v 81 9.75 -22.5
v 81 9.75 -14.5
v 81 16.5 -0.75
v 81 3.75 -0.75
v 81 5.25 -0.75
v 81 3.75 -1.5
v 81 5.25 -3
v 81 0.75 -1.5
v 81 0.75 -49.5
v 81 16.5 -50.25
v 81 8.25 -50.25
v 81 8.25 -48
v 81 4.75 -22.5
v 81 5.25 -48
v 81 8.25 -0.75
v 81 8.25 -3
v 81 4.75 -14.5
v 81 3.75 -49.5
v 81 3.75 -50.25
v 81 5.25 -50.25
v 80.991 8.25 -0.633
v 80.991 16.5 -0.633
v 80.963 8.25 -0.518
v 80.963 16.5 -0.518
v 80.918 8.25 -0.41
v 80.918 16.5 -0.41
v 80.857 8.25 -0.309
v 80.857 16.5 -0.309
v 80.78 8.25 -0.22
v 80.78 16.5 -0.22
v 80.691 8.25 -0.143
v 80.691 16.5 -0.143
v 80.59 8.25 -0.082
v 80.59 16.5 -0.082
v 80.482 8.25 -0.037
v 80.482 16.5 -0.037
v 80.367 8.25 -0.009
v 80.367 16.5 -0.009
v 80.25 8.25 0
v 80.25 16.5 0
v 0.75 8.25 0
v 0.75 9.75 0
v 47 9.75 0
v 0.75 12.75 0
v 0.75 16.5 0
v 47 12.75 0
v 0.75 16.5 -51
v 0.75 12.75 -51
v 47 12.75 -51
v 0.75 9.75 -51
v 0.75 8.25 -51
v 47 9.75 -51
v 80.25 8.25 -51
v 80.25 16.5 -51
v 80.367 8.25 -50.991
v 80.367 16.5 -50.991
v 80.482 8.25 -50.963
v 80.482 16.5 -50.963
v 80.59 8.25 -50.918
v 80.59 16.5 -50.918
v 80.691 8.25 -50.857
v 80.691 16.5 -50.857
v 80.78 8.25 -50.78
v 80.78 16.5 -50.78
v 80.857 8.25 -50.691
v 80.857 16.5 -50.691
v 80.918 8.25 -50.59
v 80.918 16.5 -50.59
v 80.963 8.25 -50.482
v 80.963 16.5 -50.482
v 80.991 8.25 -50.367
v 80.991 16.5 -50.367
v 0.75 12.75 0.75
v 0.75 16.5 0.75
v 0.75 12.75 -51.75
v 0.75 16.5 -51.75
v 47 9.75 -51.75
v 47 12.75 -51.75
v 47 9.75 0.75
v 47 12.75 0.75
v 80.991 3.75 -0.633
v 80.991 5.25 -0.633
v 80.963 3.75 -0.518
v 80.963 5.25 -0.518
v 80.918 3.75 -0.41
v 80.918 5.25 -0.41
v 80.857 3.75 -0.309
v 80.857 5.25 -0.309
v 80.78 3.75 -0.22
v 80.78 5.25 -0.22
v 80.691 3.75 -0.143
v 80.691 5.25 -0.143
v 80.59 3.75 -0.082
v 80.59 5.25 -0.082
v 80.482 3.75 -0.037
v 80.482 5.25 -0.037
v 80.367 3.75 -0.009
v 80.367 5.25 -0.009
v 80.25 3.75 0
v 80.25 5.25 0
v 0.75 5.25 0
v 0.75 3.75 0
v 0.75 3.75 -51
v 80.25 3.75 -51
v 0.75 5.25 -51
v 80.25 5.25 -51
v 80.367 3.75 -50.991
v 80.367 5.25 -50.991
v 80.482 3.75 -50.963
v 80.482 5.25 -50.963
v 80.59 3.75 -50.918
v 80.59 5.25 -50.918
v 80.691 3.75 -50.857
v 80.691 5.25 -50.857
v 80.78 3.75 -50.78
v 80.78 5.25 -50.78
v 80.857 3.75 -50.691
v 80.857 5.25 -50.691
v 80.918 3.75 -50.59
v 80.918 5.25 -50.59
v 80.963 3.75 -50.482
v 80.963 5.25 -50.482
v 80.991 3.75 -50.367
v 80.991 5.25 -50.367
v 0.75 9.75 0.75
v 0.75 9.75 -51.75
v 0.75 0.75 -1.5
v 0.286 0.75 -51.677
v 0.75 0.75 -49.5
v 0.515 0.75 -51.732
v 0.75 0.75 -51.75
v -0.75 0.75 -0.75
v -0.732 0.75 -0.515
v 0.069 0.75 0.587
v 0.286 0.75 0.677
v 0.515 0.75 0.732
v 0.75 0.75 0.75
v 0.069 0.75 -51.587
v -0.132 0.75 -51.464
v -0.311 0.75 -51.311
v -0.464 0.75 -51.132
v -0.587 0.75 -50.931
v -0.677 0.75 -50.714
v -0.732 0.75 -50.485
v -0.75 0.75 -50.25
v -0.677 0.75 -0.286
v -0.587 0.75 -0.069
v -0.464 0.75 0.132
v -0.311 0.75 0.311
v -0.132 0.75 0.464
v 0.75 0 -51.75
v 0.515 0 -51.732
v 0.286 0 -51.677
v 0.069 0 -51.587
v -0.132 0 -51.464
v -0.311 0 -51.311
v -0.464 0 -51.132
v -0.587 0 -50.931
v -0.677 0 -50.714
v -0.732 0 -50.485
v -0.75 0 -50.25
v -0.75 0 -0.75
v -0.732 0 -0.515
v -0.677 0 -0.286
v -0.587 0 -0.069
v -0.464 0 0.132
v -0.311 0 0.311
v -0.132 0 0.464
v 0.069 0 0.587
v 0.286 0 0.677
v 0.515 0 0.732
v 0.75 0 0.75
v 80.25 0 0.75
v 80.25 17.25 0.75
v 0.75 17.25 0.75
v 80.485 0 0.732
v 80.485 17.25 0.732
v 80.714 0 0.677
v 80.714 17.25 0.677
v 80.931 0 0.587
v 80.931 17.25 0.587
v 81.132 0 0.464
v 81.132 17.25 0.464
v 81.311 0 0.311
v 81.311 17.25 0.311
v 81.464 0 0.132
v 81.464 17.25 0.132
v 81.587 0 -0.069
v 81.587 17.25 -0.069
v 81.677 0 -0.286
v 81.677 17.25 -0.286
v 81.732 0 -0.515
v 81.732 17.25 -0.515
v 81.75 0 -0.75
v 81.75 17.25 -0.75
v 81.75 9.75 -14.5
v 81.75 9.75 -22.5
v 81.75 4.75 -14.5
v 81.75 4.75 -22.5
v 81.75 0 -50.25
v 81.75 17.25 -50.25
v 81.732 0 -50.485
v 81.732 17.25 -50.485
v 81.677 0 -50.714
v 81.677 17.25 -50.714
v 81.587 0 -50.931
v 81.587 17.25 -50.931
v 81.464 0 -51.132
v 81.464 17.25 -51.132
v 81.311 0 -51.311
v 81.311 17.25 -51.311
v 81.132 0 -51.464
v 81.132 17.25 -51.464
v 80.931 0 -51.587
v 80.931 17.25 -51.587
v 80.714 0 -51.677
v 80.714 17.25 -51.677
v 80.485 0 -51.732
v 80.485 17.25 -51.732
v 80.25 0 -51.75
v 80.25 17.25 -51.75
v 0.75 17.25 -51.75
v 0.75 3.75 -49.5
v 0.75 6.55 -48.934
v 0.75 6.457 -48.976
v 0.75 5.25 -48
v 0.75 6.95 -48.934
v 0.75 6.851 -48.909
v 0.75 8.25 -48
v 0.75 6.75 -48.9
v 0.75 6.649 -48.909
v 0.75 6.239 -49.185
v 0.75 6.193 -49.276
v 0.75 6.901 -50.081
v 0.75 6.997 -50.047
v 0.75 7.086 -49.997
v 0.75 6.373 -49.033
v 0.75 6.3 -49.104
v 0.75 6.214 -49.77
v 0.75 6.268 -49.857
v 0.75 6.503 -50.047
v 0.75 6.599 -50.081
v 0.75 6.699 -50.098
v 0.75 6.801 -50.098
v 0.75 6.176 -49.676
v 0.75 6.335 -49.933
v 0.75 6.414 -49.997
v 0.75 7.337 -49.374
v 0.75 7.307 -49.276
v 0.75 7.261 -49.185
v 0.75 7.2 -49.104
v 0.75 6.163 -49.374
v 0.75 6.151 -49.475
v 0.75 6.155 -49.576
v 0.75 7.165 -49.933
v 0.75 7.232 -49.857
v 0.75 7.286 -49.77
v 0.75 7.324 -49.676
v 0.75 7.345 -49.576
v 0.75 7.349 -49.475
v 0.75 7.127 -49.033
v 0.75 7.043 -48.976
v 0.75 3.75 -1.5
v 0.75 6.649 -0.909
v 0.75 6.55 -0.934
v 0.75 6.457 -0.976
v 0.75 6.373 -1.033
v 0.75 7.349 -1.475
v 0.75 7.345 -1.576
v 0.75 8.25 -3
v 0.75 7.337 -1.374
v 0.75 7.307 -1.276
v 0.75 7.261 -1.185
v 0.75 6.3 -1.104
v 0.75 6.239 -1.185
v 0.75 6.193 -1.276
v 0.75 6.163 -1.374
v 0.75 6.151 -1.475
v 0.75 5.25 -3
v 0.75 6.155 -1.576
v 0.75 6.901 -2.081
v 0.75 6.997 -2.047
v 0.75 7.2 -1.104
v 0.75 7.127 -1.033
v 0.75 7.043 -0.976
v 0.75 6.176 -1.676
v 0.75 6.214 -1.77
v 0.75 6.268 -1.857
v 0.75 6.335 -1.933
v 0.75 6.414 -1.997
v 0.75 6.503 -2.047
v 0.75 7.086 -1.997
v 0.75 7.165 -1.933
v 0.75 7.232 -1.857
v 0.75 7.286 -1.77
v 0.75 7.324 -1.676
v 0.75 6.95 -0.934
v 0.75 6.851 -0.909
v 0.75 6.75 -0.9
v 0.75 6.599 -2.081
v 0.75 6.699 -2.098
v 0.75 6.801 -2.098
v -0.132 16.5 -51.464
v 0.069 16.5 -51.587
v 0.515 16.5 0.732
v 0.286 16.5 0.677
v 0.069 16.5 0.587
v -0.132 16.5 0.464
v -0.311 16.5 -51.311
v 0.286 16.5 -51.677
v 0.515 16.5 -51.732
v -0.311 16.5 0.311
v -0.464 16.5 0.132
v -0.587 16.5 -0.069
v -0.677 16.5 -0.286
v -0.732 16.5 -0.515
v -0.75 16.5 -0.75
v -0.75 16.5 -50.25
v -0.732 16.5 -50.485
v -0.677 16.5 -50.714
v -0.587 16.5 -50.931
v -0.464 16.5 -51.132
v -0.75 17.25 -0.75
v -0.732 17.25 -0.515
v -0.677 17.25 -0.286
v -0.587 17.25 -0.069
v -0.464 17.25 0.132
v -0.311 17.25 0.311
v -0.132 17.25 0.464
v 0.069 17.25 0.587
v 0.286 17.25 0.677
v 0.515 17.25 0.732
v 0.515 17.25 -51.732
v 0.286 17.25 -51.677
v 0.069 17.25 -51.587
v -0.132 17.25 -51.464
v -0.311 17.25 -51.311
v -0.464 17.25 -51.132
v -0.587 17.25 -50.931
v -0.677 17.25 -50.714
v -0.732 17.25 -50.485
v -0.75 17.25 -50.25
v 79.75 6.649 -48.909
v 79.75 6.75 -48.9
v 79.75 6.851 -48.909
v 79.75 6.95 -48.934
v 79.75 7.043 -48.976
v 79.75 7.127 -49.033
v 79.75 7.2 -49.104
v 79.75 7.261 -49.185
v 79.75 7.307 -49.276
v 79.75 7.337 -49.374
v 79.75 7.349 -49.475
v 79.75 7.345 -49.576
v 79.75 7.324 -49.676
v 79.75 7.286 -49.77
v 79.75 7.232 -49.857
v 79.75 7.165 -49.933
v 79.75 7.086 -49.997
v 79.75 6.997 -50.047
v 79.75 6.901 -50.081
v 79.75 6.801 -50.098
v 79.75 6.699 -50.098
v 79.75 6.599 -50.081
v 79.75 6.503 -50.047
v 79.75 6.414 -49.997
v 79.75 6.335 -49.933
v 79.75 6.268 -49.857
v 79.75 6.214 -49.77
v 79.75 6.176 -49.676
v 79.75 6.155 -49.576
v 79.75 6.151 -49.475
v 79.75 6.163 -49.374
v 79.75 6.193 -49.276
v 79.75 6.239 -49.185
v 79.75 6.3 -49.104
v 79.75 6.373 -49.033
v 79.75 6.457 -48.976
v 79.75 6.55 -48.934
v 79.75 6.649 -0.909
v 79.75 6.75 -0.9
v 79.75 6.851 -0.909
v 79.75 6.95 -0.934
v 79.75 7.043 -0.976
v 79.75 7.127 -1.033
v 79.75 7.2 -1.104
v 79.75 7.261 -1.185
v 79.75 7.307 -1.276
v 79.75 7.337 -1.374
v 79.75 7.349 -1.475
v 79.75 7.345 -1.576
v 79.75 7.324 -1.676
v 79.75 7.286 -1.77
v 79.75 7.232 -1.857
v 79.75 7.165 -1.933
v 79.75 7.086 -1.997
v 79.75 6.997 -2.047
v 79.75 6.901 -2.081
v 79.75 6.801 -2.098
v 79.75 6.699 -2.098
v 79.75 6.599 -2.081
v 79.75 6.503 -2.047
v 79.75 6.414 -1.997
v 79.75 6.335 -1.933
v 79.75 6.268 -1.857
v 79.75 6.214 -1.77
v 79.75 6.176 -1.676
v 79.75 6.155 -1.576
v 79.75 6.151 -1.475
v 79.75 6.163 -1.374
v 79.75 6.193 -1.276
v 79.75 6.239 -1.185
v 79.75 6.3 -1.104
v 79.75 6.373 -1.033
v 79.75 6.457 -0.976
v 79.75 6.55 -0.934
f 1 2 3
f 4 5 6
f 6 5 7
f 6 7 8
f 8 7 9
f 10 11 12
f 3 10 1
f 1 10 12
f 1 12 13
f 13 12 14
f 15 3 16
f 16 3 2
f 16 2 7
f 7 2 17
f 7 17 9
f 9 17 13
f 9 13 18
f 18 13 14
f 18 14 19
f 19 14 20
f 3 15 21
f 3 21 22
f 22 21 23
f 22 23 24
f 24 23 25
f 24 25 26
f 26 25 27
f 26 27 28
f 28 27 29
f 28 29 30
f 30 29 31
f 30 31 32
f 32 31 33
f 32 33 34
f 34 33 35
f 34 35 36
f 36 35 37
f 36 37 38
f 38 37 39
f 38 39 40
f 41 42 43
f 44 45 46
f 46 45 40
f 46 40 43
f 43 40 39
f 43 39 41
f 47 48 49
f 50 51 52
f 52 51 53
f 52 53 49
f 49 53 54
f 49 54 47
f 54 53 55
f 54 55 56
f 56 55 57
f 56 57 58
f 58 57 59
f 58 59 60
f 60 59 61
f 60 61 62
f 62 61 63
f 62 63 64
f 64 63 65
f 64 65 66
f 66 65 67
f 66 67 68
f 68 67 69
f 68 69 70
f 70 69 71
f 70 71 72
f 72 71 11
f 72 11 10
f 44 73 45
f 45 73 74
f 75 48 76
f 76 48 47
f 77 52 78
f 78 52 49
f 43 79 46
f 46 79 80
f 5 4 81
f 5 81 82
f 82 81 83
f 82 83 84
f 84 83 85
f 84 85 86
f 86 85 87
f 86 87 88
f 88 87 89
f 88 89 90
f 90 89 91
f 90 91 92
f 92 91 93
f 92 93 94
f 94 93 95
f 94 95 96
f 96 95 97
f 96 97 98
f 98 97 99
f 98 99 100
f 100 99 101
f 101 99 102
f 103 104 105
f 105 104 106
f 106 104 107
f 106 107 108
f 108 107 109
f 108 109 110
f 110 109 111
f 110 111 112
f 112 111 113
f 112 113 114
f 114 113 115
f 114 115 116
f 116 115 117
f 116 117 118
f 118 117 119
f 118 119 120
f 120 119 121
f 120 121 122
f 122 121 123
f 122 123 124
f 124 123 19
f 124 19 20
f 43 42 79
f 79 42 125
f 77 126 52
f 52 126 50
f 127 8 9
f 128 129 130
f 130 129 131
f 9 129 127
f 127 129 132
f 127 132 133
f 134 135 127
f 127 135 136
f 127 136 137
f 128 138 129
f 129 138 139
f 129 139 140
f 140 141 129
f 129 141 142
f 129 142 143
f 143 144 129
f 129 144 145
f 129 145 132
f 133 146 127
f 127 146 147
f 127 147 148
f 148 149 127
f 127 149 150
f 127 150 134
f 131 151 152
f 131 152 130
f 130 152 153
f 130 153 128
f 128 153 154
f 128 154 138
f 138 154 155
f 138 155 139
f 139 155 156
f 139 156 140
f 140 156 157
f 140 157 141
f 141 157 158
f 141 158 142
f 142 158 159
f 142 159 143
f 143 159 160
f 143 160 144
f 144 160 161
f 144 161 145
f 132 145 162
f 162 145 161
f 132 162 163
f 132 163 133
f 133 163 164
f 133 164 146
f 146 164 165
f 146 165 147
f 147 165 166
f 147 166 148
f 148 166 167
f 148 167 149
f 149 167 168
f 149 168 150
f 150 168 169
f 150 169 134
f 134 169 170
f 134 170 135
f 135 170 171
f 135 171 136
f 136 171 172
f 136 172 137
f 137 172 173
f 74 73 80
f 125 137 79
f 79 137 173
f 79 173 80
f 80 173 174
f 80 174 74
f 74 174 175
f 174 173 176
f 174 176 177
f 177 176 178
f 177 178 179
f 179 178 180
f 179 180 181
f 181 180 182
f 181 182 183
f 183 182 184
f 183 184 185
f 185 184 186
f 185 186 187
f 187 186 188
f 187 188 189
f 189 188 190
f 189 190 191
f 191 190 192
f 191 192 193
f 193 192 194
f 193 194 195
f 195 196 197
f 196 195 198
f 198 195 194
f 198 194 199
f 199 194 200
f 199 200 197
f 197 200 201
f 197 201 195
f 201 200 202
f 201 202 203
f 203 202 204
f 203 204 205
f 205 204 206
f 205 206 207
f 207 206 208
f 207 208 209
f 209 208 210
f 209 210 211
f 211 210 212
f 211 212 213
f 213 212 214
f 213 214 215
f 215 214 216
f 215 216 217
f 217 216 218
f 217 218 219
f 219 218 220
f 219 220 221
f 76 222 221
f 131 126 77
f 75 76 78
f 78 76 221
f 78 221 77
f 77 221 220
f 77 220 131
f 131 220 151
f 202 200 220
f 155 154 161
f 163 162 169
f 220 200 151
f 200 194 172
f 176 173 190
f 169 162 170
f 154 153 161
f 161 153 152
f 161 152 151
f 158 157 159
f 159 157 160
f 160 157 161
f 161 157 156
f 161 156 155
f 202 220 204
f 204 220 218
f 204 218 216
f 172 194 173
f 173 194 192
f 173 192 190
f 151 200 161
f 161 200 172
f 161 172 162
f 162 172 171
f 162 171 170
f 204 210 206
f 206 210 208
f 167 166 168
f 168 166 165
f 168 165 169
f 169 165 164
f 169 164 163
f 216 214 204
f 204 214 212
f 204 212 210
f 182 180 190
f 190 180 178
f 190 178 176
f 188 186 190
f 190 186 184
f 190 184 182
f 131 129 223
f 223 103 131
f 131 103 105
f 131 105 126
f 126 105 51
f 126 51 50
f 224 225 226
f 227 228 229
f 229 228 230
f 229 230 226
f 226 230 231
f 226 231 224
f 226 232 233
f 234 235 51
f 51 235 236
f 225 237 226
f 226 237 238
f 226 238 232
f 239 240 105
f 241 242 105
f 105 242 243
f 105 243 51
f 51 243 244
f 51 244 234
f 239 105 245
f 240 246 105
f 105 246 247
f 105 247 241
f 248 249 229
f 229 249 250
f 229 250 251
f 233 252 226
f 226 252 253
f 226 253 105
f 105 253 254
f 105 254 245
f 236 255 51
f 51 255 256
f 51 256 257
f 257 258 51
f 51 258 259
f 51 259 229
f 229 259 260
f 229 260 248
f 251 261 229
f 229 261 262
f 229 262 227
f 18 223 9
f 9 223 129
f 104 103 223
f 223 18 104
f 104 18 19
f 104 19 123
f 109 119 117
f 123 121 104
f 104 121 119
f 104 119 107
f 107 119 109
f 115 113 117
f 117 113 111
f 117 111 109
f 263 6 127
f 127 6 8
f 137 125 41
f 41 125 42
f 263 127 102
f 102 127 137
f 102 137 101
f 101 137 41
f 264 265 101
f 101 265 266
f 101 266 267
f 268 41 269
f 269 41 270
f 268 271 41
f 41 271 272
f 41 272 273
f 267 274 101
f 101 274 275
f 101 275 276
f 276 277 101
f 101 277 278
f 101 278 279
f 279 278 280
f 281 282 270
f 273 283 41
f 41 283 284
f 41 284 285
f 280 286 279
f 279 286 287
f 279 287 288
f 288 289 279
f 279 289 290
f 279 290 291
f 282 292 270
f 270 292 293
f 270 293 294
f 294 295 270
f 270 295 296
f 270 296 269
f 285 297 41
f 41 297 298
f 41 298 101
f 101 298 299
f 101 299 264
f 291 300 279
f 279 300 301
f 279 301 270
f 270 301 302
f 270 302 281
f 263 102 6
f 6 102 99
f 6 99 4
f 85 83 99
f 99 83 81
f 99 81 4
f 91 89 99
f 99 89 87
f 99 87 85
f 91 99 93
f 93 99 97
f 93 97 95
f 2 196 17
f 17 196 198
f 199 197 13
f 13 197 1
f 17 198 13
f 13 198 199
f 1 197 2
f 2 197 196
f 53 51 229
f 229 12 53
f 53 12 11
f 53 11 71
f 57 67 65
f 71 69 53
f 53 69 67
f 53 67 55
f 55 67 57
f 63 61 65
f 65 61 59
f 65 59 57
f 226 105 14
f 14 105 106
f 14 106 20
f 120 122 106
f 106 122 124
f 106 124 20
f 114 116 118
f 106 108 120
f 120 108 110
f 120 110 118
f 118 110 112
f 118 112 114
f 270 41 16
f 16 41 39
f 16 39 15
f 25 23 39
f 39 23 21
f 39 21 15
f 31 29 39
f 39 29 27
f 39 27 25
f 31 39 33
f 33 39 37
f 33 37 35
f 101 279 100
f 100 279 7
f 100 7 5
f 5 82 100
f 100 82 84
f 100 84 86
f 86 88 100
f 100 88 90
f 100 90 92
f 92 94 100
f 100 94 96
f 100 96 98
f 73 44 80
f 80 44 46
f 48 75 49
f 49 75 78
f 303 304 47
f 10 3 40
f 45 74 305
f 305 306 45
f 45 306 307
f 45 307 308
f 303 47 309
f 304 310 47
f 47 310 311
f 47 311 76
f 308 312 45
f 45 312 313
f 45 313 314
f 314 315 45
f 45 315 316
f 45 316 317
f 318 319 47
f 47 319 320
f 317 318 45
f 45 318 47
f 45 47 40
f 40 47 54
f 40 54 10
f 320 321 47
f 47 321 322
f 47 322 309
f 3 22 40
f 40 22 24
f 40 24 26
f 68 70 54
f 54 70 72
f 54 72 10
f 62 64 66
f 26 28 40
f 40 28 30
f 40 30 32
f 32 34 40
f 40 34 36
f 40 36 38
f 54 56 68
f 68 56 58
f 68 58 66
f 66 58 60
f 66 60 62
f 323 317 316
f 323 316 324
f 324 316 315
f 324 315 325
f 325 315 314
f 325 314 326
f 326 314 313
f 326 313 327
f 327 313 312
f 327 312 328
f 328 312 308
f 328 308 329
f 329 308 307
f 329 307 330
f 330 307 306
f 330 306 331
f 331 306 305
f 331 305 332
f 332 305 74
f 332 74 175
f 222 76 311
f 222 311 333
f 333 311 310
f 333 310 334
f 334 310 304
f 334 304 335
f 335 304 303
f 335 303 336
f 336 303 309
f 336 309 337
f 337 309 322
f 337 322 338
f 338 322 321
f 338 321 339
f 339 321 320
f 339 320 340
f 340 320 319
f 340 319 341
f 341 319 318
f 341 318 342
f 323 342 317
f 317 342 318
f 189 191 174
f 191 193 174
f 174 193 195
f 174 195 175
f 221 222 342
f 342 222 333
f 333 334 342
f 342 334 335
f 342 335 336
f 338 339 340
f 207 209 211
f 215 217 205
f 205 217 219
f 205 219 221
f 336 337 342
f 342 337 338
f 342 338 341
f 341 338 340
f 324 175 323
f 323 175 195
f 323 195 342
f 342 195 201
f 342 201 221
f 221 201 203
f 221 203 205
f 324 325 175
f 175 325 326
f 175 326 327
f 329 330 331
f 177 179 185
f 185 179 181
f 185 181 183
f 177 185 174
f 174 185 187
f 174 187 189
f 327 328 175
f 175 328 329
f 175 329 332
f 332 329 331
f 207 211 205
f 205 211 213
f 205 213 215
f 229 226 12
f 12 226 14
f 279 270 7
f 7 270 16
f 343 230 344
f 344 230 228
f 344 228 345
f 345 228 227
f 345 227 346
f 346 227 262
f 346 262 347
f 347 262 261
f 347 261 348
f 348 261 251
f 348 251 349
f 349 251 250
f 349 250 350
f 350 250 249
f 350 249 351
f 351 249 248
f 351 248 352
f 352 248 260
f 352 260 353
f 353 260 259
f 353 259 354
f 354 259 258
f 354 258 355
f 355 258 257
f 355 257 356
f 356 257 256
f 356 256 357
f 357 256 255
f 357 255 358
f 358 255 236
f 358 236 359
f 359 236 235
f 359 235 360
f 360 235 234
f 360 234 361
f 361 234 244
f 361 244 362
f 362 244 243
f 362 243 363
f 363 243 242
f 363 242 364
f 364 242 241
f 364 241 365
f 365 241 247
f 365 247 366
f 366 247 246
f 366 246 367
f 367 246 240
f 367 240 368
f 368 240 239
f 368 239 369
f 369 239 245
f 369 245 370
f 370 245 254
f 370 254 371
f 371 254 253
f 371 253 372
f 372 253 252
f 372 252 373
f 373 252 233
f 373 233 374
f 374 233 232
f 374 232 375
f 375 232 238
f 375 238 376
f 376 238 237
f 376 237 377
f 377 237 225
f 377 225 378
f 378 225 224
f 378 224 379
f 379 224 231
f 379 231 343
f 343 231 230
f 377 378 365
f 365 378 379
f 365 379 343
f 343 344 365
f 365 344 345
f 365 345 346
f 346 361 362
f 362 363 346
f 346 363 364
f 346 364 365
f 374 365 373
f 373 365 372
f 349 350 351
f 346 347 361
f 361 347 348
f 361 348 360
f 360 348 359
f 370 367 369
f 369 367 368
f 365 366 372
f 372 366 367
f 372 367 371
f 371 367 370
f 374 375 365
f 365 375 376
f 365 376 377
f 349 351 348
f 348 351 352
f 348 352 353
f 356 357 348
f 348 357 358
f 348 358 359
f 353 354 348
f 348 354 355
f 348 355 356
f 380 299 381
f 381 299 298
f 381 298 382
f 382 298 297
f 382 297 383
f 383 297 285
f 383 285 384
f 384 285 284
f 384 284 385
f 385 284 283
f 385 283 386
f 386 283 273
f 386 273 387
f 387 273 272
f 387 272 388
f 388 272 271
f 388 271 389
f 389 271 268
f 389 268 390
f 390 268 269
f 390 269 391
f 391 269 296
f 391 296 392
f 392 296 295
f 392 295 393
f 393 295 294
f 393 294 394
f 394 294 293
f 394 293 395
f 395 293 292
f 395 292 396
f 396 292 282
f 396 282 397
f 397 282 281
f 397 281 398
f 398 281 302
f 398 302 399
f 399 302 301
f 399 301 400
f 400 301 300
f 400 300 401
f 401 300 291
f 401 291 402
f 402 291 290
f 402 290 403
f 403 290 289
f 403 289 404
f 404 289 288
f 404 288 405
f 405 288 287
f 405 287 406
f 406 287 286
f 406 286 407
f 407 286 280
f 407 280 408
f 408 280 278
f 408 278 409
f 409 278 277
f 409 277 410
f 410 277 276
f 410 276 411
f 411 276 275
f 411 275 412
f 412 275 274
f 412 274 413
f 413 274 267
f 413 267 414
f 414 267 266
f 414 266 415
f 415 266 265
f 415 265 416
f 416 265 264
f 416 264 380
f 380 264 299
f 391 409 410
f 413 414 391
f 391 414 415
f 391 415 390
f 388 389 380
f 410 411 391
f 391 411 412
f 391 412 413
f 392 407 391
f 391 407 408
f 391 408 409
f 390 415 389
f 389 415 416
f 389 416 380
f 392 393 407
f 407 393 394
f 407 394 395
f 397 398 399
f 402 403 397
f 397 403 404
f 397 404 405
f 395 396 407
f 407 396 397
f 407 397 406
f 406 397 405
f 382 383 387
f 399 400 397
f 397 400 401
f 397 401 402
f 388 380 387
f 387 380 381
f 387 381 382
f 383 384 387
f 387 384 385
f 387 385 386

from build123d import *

# Parameters (mm, degrees)
BOSS_EXTRUDE1_DEPTH  = 0.75
BOSS_EXTRUDE2_DEPTH  = 3.75
BOSS_EXTRUDE3_DEPTH  = 9.75
SKETCH1_5_W          = 0.75
SKETCH1_5_H          = 8
BOSS_EXTRUDE4_DEPTH  = 4.75
BOSS_EXTRUDE5_START  = 9.75
BOSS_EXTRUDE5_DEPTH  = 7
BOSS_EXTRUDE6_START  = 5.25
BOSS_EXTRUDE6_DEPTH  = 3
BOSS_EXTRUDE7_START  = 12.75
SKETCH1_11_W         = 46.25
SKETCH1_11_H         = 0.75
BOSS_EXTRUDE7_DEPTH  = 4
BOSS_EXTRUDE9_START  = 16.5
BOSS_EXTRUDE9_DEPTH  = 0.75
SKETCH3_W            = 80.25
SKETCH3_H            = 3
BOSS_EXTRUDE10_DEPTH = 1.5
SKETCH6_W            = 80.25
SKETCH6_H            = 3
BOSS_EXTRUDE11_DEPTH = 1.5
SKETCH4_R            = 0.6
CUT_EXTRUDE1_DEPTH   = 79
SKETCH7_R            = 0.6
CUT_EXTRUDE2_DEPTH   = 79


with BuildPart() as part:
    # Sketch1 → Boss-Extrude1 (new body)
    with BuildSketch(Plane(origin=(0, 0, 0), x_dir=(1, 0, 0), z_dir=(0, 1, 0))):
        with BuildLine():
            Line((0.75, 51.75), (80.25, 51.75))
            ThreePointArc((80.25, 51.75), (81.310660172, 51.310660172), (81.75, 50.25))
            Line((81.75, 50.25), (81.75, 0.75))
            ThreePointArc((81.75, 0.75), (81.310660172, -0.310660172), (80.25, -0.75))
            Line((80.25, -0.75), (0.75, -0.75))
            ThreePointArc((0.75, -0.75), (-0.310660172, -0.310660172), (-0.75, 0.75))
            Line((-0.75, 0.75), (-0.75, 50.25))
            ThreePointArc((-0.75, 50.25), (-0.310660172, 51.310660172), (0.75, 51.75))
        make_face()
    extrude(amount=BOSS_EXTRUDE1_DEPTH)

    # Sketch1<3> → Boss-Extrude2 (add)
    with BuildSketch(Plane(origin=(0, 0, 0), x_dir=(1, 0, 0), z_dir=(0, 1, 0))):
        with BuildLine():
            Line((80.25, 51), (0.75, 51))
            Line((0.75, 51), (0.75, 49.5))
            Line((0.75, 49.5), (81, 49.5))
            Line((81, 49.5), (81, 50.25))
            ThreePointArc((81, 50.25), (80.780330086, 50.780330086), (80.25, 51))
        make_face()
        with BuildLine():
            Line((81, 1.5), (0.75, 1.5))
            Line((0.75, 1.5), (0.75, 0))
            Line((0.75, 0), (80.25, 0))
            ThreePointArc((80.25, 0), (80.780330086, 0.219669914), (81, 0.75))
            Line((81, 0.75), (81, 1.5))
        make_face()
    extrude(amount=BOSS_EXTRUDE2_DEPTH)

    # Sketch1<4> → Boss-Extrude3 (add)
    with BuildSketch(Plane(origin=(0, 0, 0), x_dir=(1, 0, 0), z_dir=(0, 1, 0))):
        with BuildLine():
            Line((0.75, 51.75), (0.75, 51))
            Line((0.75, 51), (80.25, 51))
            ThreePointArc((80.25, 51), (80.780330086, 50.780330086), (81, 50.25))
            Line((81, 50.25), (81, 22.5))
            Line((81, 22.5), (81.75, 22.5))
            Line((81.75, 22.5), (81.75, 50.25))
            ThreePointArc((81.75, 50.25), (81.310660172, 51.310660172), (80.25, 51.75))
            Line((80.25, 51.75), (0.75, 51.75))
        make_face()
        with BuildLine():
            Line((0.75, 0), (0.75, -0.75))
            Line((0.75, -0.75), (80.25, -0.75))
            ThreePointArc((80.25, -0.75), (81.310660172, -0.310660172), (81.75, 0.75))
            Line((81.75, 0.75), (81.75, 14.5))
            Line((81.75, 14.5), (81, 14.5))
            Line((81, 14.5), (81, 0.75))
            ThreePointArc((81, 0.75), (80.780330086, 0.219669914), (80.25, 0))
            Line((80.25, 0), (0.75, 0))
        make_face()
    extrude(amount=BOSS_EXTRUDE3_DEPTH)

    # Sketch1<5> → Boss-Extrude4 (add)
    with BuildSketch(Plane(origin=(0, 0, 0), x_dir=(1, 0, 0), z_dir=(0, 1, 0))):
        with Locations((81.375, 18.5)):
            Rectangle(SKETCH1_5_W, SKETCH1_5_H)
    extrude(amount=BOSS_EXTRUDE4_DEPTH)

    # Sketch1<8> → Boss-Extrude5 (add)
    with BuildSketch(Plane(origin=(0, 0, 0), x_dir=(1, 0, 0), z_dir=(0, 1, 0)).offset(BOSS_EXTRUDE5_START)):
        with BuildLine():
            Line((80.25, 51.75), (47, 51.75))
            Line((47, 51.75), (47, 51))
            Line((47, 51), (80.25, 51))
            ThreePointArc((80.25, 51), (80.780330086, 50.780330086), (81, 50.25))
            Line((81, 50.25), (81, 0.75))
            ThreePointArc((81, 0.75), (80.780330086, 0.219669914), (80.25, 0))
            Line((80.25, 0), (47, 0))
            Line((47, 0), (47, -0.75))
            Line((47, -0.75), (80.25, -0.75))
            ThreePointArc((80.25, -0.75), (81.310660172, -0.310660172), (81.75, 0.75))
            Line((81.75, 0.75), (81.75, 50.25))
            ThreePointArc((81.75, 50.25), (81.310660172, 51.310660172), (80.25, 51.75))
        make_face()
    extrude(amount=BOSS_EXTRUDE5_DEPTH)

    # Sketch1<9> → Boss-Extrude6 (add)
    with BuildSketch(Plane(origin=(0, 0, 0), x_dir=(1, 0, 0), z_dir=(0, 1, 0)).offset(BOSS_EXTRUDE6_START)):
        with BuildLine():
            Line((80.25, 51), (0.75, 51))
            Line((0.75, 51), (0.75, 49.5))
            Line((0.75, 49.5), (81, 49.5))
            Line((81, 49.5), (81, 50.25))
            ThreePointArc((81, 50.25), (80.780330086, 50.780330086), (80.25, 51))
        make_face()
        with BuildLine():
            Line((81, 1.5), (0.75, 1.5))
            Line((0.75, 1.5), (0.75, 0))
            Line((0.75, 0), (80.25, 0))
            ThreePointArc((80.25, 0), (80.780330086, 0.219669914), (81, 0.75))
            Line((81, 0.75), (81, 1.5))
        make_face()
    extrude(amount=BOSS_EXTRUDE6_DEPTH)

    # Sketch1<11> → Boss-Extrude7 (add)
    with BuildSketch(Plane(origin=(0, 0, 0), x_dir=(1, 0, 0), z_dir=(0, 1, 0)).offset(BOSS_EXTRUDE7_START)):
        with Locations((23.875, 51.375)):
            Rectangle(SKETCH1_11_W, SKETCH1_11_H)
        with Locations((23.875, -0.375)):
            Rectangle(SKETCH1_11_W, SKETCH1_11_H)
    extrude(amount=BOSS_EXTRUDE7_DEPTH)

    # Sketch1<12> → Boss-Extrude9 (add)
    with BuildSketch(Plane(origin=(0, 0, 0), x_dir=(1, 0, 0), z_dir=(0, 1, 0)).offset(BOSS_EXTRUDE9_START)):
        with BuildLine():
            ThreePointArc((0.75, 51.75), (-0.310660172, 51.310660172), (-0.75, 50.25))
            Line((-0.75, 50.25), (-0.75, 0.75))
            ThreePointArc((-0.75, 0.75), (-0.310660172, -0.310660172), (0.75, -0.75))
            Line((0.75, -0.75), (80.25, -0.75))
            ThreePointArc((80.25, -0.75), (81.310660172, -0.310660172), (81.75, 0.75))
            Line((81.75, 0.75), (81.75, 50.25))
            ThreePointArc((81.75, 50.25), (81.310660172, 51.310660172), (80.25, 51.75))
            Line((80.25, 51.75), (0.75, 51.75))
        make_face()
    extrude(amount=BOSS_EXTRUDE9_DEPTH)

    # Sketch3 → Boss-Extrude10 (add)
    with BuildSketch(Plane.XY.offset(-49.5)):
        with Locations((40.875, 6.75)):
            Rectangle(SKETCH3_W, SKETCH3_H)
    extrude(amount=BOSS_EXTRUDE10_DEPTH)

    # Sketch6 → Boss-Extrude11 (add)
    with BuildSketch(Plane(origin=(0, 0, -1.5), x_dir=(-1, 0, 0), z_dir=(0, 0, -1))):
        with Locations((-40.875, 6.75)):
            Rectangle(SKETCH6_W, SKETCH6_H)
    extrude(amount=BOSS_EXTRUDE11_DEPTH)

    # Sketch4 → Cut-Extrude1 (cut)
    with BuildSketch(Plane.ZY.offset(-0.75)):
        with Locations((-49.5, 6.75)):
            Circle(SKETCH4_R)
    extrude(amount=-CUT_EXTRUDE1_DEPTH, mode=Mode.SUBTRACT)

    # Sketch7 → Cut-Extrude2 (cut)
    with BuildSketch(Plane.ZY.offset(-0.75)):
        with Locations((-1.5, 6.75)):
            Circle(SKETCH7_R)
    extrude(amount=-CUT_EXTRUDE2_DEPTH, mode=Mode.SUBTRACT)


solid = part.part
